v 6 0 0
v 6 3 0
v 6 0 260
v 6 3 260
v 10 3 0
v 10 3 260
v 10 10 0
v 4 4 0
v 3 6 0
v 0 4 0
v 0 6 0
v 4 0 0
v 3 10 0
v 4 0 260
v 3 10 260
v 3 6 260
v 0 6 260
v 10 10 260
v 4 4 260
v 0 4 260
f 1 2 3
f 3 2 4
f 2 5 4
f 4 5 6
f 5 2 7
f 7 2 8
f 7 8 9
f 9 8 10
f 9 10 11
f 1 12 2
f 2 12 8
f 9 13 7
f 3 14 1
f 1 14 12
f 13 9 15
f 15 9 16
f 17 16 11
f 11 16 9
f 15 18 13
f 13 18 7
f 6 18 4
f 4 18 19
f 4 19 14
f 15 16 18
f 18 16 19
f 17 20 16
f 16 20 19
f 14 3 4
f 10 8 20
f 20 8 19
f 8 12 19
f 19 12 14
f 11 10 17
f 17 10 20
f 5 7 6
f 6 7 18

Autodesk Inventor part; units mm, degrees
ref_plane "YZ Plane" through (0, 0, 0) normal (1, 0, 0) x (0, 1, 0)
ref_plane "XZ Plane" through (0, 0, 0) normal (0, 1, 0) x (-1, 0, 0)
sketch "Skizze1" plane through (0, 0, 0) normal (0, 0, 1) x (1, 0, 0)
  line L0 (0, 0) -> (10, 0)
  line L1 (10, 0) -> (10, 10)
  line L2 (10, 10) -> (0, 10)
  line L3 (0, 10) -> (0, 0)
extrude "Extrusion1" add sketch "Skizze1" along normal blind 260
sketch "Skizze2" plane through (0, 0, 0) normal (0, 0, 1) x (1, 0, 0)
  line L0 (0, 0) -> (4, 0)
  line L1 (4, 0) -> (4, 4)
  line L2 (4, 4) -> (0, 4)
  line L3 (0, 4) -> (0, 0)
extrude "Extrusion2" cut sketch "Skizze2" along normal blind 260
sketch "Skizze3" plane through (0, 0, 0) normal (0, 0, 1) x (1, 0, 0)
  line L0 (-3, 6) -> (3, 6)
  line L1 (3, 6) -> (3, 10)
  line L2 (3, 10) -> (-3, 10)
  line L3 (-3, 10) -> (-3, 6)
extrude "Extrusion3" cut sketch "Skizze3" along normal blind 260
sketch "Skizze4" plane through (0, 0, 0) normal (0, 0, 1) x (1, 0, 0)
  line L0 (-3, -10) -> (3, -10)
  line L1 (3, -10) -> (3, -6)
  line L2 (3, -6) -> (-3, -6)
  line L3 (-3, -6) -> (-3, -10)
extrude "Extrusion4" cut sketch "Skizze4" along normal blind 260
sketch "Skizze5" plane through (0, 0, 0) normal (0, 0, 1) x (1, 0, 0)
  line L0 (-10, -3) -> (-6, -3)
  line L1 (-6, -3) -> (-6, 3)
  line L2 (-6, 3) -> (-10, 3)
  line L3 (-10, 3) -> (-10, -3)
extrude "Extrusion5" cut sketch "Skizze5" along normal blind 260
sketch "Skizze6" plane through (0, 0, 0) normal (0, 0, 1) x (1, 0, 0)
  line L0 (6, -3) -> (10, -3)
  line L1 (10, -3) -> (10, 3)
  line L2 (10, 3) -> (6, 3)
  line L3 (6, 3) -> (6, -3)
extrude "Extrusion6" cut sketch "Skizze6" along normal blind 260
ref_plane "Arbeitsebene1" through (0, 0, 260) normal (0, 0, 1) x (1, 0, 0)
sketch "Skizze7" plane through (0, 0, 0) normal (0, 0, 1) x (1, 0, 0)
  circle A0 centre (0, 0) radius 2.5
extrude "Extrusion7" cut sketch "Skizze7" along normal blind 10
sketch "Skizze8" plane through (0, 0, 260) normal (0, 0, 1) x (1, 0, 0)
  circle A0 centre (0, 0) radius 2.5
extrude "Extrusion8" cut sketch "Skizze8" along normal blind 10
properties part number "Aluprofil_20x20_L260"
